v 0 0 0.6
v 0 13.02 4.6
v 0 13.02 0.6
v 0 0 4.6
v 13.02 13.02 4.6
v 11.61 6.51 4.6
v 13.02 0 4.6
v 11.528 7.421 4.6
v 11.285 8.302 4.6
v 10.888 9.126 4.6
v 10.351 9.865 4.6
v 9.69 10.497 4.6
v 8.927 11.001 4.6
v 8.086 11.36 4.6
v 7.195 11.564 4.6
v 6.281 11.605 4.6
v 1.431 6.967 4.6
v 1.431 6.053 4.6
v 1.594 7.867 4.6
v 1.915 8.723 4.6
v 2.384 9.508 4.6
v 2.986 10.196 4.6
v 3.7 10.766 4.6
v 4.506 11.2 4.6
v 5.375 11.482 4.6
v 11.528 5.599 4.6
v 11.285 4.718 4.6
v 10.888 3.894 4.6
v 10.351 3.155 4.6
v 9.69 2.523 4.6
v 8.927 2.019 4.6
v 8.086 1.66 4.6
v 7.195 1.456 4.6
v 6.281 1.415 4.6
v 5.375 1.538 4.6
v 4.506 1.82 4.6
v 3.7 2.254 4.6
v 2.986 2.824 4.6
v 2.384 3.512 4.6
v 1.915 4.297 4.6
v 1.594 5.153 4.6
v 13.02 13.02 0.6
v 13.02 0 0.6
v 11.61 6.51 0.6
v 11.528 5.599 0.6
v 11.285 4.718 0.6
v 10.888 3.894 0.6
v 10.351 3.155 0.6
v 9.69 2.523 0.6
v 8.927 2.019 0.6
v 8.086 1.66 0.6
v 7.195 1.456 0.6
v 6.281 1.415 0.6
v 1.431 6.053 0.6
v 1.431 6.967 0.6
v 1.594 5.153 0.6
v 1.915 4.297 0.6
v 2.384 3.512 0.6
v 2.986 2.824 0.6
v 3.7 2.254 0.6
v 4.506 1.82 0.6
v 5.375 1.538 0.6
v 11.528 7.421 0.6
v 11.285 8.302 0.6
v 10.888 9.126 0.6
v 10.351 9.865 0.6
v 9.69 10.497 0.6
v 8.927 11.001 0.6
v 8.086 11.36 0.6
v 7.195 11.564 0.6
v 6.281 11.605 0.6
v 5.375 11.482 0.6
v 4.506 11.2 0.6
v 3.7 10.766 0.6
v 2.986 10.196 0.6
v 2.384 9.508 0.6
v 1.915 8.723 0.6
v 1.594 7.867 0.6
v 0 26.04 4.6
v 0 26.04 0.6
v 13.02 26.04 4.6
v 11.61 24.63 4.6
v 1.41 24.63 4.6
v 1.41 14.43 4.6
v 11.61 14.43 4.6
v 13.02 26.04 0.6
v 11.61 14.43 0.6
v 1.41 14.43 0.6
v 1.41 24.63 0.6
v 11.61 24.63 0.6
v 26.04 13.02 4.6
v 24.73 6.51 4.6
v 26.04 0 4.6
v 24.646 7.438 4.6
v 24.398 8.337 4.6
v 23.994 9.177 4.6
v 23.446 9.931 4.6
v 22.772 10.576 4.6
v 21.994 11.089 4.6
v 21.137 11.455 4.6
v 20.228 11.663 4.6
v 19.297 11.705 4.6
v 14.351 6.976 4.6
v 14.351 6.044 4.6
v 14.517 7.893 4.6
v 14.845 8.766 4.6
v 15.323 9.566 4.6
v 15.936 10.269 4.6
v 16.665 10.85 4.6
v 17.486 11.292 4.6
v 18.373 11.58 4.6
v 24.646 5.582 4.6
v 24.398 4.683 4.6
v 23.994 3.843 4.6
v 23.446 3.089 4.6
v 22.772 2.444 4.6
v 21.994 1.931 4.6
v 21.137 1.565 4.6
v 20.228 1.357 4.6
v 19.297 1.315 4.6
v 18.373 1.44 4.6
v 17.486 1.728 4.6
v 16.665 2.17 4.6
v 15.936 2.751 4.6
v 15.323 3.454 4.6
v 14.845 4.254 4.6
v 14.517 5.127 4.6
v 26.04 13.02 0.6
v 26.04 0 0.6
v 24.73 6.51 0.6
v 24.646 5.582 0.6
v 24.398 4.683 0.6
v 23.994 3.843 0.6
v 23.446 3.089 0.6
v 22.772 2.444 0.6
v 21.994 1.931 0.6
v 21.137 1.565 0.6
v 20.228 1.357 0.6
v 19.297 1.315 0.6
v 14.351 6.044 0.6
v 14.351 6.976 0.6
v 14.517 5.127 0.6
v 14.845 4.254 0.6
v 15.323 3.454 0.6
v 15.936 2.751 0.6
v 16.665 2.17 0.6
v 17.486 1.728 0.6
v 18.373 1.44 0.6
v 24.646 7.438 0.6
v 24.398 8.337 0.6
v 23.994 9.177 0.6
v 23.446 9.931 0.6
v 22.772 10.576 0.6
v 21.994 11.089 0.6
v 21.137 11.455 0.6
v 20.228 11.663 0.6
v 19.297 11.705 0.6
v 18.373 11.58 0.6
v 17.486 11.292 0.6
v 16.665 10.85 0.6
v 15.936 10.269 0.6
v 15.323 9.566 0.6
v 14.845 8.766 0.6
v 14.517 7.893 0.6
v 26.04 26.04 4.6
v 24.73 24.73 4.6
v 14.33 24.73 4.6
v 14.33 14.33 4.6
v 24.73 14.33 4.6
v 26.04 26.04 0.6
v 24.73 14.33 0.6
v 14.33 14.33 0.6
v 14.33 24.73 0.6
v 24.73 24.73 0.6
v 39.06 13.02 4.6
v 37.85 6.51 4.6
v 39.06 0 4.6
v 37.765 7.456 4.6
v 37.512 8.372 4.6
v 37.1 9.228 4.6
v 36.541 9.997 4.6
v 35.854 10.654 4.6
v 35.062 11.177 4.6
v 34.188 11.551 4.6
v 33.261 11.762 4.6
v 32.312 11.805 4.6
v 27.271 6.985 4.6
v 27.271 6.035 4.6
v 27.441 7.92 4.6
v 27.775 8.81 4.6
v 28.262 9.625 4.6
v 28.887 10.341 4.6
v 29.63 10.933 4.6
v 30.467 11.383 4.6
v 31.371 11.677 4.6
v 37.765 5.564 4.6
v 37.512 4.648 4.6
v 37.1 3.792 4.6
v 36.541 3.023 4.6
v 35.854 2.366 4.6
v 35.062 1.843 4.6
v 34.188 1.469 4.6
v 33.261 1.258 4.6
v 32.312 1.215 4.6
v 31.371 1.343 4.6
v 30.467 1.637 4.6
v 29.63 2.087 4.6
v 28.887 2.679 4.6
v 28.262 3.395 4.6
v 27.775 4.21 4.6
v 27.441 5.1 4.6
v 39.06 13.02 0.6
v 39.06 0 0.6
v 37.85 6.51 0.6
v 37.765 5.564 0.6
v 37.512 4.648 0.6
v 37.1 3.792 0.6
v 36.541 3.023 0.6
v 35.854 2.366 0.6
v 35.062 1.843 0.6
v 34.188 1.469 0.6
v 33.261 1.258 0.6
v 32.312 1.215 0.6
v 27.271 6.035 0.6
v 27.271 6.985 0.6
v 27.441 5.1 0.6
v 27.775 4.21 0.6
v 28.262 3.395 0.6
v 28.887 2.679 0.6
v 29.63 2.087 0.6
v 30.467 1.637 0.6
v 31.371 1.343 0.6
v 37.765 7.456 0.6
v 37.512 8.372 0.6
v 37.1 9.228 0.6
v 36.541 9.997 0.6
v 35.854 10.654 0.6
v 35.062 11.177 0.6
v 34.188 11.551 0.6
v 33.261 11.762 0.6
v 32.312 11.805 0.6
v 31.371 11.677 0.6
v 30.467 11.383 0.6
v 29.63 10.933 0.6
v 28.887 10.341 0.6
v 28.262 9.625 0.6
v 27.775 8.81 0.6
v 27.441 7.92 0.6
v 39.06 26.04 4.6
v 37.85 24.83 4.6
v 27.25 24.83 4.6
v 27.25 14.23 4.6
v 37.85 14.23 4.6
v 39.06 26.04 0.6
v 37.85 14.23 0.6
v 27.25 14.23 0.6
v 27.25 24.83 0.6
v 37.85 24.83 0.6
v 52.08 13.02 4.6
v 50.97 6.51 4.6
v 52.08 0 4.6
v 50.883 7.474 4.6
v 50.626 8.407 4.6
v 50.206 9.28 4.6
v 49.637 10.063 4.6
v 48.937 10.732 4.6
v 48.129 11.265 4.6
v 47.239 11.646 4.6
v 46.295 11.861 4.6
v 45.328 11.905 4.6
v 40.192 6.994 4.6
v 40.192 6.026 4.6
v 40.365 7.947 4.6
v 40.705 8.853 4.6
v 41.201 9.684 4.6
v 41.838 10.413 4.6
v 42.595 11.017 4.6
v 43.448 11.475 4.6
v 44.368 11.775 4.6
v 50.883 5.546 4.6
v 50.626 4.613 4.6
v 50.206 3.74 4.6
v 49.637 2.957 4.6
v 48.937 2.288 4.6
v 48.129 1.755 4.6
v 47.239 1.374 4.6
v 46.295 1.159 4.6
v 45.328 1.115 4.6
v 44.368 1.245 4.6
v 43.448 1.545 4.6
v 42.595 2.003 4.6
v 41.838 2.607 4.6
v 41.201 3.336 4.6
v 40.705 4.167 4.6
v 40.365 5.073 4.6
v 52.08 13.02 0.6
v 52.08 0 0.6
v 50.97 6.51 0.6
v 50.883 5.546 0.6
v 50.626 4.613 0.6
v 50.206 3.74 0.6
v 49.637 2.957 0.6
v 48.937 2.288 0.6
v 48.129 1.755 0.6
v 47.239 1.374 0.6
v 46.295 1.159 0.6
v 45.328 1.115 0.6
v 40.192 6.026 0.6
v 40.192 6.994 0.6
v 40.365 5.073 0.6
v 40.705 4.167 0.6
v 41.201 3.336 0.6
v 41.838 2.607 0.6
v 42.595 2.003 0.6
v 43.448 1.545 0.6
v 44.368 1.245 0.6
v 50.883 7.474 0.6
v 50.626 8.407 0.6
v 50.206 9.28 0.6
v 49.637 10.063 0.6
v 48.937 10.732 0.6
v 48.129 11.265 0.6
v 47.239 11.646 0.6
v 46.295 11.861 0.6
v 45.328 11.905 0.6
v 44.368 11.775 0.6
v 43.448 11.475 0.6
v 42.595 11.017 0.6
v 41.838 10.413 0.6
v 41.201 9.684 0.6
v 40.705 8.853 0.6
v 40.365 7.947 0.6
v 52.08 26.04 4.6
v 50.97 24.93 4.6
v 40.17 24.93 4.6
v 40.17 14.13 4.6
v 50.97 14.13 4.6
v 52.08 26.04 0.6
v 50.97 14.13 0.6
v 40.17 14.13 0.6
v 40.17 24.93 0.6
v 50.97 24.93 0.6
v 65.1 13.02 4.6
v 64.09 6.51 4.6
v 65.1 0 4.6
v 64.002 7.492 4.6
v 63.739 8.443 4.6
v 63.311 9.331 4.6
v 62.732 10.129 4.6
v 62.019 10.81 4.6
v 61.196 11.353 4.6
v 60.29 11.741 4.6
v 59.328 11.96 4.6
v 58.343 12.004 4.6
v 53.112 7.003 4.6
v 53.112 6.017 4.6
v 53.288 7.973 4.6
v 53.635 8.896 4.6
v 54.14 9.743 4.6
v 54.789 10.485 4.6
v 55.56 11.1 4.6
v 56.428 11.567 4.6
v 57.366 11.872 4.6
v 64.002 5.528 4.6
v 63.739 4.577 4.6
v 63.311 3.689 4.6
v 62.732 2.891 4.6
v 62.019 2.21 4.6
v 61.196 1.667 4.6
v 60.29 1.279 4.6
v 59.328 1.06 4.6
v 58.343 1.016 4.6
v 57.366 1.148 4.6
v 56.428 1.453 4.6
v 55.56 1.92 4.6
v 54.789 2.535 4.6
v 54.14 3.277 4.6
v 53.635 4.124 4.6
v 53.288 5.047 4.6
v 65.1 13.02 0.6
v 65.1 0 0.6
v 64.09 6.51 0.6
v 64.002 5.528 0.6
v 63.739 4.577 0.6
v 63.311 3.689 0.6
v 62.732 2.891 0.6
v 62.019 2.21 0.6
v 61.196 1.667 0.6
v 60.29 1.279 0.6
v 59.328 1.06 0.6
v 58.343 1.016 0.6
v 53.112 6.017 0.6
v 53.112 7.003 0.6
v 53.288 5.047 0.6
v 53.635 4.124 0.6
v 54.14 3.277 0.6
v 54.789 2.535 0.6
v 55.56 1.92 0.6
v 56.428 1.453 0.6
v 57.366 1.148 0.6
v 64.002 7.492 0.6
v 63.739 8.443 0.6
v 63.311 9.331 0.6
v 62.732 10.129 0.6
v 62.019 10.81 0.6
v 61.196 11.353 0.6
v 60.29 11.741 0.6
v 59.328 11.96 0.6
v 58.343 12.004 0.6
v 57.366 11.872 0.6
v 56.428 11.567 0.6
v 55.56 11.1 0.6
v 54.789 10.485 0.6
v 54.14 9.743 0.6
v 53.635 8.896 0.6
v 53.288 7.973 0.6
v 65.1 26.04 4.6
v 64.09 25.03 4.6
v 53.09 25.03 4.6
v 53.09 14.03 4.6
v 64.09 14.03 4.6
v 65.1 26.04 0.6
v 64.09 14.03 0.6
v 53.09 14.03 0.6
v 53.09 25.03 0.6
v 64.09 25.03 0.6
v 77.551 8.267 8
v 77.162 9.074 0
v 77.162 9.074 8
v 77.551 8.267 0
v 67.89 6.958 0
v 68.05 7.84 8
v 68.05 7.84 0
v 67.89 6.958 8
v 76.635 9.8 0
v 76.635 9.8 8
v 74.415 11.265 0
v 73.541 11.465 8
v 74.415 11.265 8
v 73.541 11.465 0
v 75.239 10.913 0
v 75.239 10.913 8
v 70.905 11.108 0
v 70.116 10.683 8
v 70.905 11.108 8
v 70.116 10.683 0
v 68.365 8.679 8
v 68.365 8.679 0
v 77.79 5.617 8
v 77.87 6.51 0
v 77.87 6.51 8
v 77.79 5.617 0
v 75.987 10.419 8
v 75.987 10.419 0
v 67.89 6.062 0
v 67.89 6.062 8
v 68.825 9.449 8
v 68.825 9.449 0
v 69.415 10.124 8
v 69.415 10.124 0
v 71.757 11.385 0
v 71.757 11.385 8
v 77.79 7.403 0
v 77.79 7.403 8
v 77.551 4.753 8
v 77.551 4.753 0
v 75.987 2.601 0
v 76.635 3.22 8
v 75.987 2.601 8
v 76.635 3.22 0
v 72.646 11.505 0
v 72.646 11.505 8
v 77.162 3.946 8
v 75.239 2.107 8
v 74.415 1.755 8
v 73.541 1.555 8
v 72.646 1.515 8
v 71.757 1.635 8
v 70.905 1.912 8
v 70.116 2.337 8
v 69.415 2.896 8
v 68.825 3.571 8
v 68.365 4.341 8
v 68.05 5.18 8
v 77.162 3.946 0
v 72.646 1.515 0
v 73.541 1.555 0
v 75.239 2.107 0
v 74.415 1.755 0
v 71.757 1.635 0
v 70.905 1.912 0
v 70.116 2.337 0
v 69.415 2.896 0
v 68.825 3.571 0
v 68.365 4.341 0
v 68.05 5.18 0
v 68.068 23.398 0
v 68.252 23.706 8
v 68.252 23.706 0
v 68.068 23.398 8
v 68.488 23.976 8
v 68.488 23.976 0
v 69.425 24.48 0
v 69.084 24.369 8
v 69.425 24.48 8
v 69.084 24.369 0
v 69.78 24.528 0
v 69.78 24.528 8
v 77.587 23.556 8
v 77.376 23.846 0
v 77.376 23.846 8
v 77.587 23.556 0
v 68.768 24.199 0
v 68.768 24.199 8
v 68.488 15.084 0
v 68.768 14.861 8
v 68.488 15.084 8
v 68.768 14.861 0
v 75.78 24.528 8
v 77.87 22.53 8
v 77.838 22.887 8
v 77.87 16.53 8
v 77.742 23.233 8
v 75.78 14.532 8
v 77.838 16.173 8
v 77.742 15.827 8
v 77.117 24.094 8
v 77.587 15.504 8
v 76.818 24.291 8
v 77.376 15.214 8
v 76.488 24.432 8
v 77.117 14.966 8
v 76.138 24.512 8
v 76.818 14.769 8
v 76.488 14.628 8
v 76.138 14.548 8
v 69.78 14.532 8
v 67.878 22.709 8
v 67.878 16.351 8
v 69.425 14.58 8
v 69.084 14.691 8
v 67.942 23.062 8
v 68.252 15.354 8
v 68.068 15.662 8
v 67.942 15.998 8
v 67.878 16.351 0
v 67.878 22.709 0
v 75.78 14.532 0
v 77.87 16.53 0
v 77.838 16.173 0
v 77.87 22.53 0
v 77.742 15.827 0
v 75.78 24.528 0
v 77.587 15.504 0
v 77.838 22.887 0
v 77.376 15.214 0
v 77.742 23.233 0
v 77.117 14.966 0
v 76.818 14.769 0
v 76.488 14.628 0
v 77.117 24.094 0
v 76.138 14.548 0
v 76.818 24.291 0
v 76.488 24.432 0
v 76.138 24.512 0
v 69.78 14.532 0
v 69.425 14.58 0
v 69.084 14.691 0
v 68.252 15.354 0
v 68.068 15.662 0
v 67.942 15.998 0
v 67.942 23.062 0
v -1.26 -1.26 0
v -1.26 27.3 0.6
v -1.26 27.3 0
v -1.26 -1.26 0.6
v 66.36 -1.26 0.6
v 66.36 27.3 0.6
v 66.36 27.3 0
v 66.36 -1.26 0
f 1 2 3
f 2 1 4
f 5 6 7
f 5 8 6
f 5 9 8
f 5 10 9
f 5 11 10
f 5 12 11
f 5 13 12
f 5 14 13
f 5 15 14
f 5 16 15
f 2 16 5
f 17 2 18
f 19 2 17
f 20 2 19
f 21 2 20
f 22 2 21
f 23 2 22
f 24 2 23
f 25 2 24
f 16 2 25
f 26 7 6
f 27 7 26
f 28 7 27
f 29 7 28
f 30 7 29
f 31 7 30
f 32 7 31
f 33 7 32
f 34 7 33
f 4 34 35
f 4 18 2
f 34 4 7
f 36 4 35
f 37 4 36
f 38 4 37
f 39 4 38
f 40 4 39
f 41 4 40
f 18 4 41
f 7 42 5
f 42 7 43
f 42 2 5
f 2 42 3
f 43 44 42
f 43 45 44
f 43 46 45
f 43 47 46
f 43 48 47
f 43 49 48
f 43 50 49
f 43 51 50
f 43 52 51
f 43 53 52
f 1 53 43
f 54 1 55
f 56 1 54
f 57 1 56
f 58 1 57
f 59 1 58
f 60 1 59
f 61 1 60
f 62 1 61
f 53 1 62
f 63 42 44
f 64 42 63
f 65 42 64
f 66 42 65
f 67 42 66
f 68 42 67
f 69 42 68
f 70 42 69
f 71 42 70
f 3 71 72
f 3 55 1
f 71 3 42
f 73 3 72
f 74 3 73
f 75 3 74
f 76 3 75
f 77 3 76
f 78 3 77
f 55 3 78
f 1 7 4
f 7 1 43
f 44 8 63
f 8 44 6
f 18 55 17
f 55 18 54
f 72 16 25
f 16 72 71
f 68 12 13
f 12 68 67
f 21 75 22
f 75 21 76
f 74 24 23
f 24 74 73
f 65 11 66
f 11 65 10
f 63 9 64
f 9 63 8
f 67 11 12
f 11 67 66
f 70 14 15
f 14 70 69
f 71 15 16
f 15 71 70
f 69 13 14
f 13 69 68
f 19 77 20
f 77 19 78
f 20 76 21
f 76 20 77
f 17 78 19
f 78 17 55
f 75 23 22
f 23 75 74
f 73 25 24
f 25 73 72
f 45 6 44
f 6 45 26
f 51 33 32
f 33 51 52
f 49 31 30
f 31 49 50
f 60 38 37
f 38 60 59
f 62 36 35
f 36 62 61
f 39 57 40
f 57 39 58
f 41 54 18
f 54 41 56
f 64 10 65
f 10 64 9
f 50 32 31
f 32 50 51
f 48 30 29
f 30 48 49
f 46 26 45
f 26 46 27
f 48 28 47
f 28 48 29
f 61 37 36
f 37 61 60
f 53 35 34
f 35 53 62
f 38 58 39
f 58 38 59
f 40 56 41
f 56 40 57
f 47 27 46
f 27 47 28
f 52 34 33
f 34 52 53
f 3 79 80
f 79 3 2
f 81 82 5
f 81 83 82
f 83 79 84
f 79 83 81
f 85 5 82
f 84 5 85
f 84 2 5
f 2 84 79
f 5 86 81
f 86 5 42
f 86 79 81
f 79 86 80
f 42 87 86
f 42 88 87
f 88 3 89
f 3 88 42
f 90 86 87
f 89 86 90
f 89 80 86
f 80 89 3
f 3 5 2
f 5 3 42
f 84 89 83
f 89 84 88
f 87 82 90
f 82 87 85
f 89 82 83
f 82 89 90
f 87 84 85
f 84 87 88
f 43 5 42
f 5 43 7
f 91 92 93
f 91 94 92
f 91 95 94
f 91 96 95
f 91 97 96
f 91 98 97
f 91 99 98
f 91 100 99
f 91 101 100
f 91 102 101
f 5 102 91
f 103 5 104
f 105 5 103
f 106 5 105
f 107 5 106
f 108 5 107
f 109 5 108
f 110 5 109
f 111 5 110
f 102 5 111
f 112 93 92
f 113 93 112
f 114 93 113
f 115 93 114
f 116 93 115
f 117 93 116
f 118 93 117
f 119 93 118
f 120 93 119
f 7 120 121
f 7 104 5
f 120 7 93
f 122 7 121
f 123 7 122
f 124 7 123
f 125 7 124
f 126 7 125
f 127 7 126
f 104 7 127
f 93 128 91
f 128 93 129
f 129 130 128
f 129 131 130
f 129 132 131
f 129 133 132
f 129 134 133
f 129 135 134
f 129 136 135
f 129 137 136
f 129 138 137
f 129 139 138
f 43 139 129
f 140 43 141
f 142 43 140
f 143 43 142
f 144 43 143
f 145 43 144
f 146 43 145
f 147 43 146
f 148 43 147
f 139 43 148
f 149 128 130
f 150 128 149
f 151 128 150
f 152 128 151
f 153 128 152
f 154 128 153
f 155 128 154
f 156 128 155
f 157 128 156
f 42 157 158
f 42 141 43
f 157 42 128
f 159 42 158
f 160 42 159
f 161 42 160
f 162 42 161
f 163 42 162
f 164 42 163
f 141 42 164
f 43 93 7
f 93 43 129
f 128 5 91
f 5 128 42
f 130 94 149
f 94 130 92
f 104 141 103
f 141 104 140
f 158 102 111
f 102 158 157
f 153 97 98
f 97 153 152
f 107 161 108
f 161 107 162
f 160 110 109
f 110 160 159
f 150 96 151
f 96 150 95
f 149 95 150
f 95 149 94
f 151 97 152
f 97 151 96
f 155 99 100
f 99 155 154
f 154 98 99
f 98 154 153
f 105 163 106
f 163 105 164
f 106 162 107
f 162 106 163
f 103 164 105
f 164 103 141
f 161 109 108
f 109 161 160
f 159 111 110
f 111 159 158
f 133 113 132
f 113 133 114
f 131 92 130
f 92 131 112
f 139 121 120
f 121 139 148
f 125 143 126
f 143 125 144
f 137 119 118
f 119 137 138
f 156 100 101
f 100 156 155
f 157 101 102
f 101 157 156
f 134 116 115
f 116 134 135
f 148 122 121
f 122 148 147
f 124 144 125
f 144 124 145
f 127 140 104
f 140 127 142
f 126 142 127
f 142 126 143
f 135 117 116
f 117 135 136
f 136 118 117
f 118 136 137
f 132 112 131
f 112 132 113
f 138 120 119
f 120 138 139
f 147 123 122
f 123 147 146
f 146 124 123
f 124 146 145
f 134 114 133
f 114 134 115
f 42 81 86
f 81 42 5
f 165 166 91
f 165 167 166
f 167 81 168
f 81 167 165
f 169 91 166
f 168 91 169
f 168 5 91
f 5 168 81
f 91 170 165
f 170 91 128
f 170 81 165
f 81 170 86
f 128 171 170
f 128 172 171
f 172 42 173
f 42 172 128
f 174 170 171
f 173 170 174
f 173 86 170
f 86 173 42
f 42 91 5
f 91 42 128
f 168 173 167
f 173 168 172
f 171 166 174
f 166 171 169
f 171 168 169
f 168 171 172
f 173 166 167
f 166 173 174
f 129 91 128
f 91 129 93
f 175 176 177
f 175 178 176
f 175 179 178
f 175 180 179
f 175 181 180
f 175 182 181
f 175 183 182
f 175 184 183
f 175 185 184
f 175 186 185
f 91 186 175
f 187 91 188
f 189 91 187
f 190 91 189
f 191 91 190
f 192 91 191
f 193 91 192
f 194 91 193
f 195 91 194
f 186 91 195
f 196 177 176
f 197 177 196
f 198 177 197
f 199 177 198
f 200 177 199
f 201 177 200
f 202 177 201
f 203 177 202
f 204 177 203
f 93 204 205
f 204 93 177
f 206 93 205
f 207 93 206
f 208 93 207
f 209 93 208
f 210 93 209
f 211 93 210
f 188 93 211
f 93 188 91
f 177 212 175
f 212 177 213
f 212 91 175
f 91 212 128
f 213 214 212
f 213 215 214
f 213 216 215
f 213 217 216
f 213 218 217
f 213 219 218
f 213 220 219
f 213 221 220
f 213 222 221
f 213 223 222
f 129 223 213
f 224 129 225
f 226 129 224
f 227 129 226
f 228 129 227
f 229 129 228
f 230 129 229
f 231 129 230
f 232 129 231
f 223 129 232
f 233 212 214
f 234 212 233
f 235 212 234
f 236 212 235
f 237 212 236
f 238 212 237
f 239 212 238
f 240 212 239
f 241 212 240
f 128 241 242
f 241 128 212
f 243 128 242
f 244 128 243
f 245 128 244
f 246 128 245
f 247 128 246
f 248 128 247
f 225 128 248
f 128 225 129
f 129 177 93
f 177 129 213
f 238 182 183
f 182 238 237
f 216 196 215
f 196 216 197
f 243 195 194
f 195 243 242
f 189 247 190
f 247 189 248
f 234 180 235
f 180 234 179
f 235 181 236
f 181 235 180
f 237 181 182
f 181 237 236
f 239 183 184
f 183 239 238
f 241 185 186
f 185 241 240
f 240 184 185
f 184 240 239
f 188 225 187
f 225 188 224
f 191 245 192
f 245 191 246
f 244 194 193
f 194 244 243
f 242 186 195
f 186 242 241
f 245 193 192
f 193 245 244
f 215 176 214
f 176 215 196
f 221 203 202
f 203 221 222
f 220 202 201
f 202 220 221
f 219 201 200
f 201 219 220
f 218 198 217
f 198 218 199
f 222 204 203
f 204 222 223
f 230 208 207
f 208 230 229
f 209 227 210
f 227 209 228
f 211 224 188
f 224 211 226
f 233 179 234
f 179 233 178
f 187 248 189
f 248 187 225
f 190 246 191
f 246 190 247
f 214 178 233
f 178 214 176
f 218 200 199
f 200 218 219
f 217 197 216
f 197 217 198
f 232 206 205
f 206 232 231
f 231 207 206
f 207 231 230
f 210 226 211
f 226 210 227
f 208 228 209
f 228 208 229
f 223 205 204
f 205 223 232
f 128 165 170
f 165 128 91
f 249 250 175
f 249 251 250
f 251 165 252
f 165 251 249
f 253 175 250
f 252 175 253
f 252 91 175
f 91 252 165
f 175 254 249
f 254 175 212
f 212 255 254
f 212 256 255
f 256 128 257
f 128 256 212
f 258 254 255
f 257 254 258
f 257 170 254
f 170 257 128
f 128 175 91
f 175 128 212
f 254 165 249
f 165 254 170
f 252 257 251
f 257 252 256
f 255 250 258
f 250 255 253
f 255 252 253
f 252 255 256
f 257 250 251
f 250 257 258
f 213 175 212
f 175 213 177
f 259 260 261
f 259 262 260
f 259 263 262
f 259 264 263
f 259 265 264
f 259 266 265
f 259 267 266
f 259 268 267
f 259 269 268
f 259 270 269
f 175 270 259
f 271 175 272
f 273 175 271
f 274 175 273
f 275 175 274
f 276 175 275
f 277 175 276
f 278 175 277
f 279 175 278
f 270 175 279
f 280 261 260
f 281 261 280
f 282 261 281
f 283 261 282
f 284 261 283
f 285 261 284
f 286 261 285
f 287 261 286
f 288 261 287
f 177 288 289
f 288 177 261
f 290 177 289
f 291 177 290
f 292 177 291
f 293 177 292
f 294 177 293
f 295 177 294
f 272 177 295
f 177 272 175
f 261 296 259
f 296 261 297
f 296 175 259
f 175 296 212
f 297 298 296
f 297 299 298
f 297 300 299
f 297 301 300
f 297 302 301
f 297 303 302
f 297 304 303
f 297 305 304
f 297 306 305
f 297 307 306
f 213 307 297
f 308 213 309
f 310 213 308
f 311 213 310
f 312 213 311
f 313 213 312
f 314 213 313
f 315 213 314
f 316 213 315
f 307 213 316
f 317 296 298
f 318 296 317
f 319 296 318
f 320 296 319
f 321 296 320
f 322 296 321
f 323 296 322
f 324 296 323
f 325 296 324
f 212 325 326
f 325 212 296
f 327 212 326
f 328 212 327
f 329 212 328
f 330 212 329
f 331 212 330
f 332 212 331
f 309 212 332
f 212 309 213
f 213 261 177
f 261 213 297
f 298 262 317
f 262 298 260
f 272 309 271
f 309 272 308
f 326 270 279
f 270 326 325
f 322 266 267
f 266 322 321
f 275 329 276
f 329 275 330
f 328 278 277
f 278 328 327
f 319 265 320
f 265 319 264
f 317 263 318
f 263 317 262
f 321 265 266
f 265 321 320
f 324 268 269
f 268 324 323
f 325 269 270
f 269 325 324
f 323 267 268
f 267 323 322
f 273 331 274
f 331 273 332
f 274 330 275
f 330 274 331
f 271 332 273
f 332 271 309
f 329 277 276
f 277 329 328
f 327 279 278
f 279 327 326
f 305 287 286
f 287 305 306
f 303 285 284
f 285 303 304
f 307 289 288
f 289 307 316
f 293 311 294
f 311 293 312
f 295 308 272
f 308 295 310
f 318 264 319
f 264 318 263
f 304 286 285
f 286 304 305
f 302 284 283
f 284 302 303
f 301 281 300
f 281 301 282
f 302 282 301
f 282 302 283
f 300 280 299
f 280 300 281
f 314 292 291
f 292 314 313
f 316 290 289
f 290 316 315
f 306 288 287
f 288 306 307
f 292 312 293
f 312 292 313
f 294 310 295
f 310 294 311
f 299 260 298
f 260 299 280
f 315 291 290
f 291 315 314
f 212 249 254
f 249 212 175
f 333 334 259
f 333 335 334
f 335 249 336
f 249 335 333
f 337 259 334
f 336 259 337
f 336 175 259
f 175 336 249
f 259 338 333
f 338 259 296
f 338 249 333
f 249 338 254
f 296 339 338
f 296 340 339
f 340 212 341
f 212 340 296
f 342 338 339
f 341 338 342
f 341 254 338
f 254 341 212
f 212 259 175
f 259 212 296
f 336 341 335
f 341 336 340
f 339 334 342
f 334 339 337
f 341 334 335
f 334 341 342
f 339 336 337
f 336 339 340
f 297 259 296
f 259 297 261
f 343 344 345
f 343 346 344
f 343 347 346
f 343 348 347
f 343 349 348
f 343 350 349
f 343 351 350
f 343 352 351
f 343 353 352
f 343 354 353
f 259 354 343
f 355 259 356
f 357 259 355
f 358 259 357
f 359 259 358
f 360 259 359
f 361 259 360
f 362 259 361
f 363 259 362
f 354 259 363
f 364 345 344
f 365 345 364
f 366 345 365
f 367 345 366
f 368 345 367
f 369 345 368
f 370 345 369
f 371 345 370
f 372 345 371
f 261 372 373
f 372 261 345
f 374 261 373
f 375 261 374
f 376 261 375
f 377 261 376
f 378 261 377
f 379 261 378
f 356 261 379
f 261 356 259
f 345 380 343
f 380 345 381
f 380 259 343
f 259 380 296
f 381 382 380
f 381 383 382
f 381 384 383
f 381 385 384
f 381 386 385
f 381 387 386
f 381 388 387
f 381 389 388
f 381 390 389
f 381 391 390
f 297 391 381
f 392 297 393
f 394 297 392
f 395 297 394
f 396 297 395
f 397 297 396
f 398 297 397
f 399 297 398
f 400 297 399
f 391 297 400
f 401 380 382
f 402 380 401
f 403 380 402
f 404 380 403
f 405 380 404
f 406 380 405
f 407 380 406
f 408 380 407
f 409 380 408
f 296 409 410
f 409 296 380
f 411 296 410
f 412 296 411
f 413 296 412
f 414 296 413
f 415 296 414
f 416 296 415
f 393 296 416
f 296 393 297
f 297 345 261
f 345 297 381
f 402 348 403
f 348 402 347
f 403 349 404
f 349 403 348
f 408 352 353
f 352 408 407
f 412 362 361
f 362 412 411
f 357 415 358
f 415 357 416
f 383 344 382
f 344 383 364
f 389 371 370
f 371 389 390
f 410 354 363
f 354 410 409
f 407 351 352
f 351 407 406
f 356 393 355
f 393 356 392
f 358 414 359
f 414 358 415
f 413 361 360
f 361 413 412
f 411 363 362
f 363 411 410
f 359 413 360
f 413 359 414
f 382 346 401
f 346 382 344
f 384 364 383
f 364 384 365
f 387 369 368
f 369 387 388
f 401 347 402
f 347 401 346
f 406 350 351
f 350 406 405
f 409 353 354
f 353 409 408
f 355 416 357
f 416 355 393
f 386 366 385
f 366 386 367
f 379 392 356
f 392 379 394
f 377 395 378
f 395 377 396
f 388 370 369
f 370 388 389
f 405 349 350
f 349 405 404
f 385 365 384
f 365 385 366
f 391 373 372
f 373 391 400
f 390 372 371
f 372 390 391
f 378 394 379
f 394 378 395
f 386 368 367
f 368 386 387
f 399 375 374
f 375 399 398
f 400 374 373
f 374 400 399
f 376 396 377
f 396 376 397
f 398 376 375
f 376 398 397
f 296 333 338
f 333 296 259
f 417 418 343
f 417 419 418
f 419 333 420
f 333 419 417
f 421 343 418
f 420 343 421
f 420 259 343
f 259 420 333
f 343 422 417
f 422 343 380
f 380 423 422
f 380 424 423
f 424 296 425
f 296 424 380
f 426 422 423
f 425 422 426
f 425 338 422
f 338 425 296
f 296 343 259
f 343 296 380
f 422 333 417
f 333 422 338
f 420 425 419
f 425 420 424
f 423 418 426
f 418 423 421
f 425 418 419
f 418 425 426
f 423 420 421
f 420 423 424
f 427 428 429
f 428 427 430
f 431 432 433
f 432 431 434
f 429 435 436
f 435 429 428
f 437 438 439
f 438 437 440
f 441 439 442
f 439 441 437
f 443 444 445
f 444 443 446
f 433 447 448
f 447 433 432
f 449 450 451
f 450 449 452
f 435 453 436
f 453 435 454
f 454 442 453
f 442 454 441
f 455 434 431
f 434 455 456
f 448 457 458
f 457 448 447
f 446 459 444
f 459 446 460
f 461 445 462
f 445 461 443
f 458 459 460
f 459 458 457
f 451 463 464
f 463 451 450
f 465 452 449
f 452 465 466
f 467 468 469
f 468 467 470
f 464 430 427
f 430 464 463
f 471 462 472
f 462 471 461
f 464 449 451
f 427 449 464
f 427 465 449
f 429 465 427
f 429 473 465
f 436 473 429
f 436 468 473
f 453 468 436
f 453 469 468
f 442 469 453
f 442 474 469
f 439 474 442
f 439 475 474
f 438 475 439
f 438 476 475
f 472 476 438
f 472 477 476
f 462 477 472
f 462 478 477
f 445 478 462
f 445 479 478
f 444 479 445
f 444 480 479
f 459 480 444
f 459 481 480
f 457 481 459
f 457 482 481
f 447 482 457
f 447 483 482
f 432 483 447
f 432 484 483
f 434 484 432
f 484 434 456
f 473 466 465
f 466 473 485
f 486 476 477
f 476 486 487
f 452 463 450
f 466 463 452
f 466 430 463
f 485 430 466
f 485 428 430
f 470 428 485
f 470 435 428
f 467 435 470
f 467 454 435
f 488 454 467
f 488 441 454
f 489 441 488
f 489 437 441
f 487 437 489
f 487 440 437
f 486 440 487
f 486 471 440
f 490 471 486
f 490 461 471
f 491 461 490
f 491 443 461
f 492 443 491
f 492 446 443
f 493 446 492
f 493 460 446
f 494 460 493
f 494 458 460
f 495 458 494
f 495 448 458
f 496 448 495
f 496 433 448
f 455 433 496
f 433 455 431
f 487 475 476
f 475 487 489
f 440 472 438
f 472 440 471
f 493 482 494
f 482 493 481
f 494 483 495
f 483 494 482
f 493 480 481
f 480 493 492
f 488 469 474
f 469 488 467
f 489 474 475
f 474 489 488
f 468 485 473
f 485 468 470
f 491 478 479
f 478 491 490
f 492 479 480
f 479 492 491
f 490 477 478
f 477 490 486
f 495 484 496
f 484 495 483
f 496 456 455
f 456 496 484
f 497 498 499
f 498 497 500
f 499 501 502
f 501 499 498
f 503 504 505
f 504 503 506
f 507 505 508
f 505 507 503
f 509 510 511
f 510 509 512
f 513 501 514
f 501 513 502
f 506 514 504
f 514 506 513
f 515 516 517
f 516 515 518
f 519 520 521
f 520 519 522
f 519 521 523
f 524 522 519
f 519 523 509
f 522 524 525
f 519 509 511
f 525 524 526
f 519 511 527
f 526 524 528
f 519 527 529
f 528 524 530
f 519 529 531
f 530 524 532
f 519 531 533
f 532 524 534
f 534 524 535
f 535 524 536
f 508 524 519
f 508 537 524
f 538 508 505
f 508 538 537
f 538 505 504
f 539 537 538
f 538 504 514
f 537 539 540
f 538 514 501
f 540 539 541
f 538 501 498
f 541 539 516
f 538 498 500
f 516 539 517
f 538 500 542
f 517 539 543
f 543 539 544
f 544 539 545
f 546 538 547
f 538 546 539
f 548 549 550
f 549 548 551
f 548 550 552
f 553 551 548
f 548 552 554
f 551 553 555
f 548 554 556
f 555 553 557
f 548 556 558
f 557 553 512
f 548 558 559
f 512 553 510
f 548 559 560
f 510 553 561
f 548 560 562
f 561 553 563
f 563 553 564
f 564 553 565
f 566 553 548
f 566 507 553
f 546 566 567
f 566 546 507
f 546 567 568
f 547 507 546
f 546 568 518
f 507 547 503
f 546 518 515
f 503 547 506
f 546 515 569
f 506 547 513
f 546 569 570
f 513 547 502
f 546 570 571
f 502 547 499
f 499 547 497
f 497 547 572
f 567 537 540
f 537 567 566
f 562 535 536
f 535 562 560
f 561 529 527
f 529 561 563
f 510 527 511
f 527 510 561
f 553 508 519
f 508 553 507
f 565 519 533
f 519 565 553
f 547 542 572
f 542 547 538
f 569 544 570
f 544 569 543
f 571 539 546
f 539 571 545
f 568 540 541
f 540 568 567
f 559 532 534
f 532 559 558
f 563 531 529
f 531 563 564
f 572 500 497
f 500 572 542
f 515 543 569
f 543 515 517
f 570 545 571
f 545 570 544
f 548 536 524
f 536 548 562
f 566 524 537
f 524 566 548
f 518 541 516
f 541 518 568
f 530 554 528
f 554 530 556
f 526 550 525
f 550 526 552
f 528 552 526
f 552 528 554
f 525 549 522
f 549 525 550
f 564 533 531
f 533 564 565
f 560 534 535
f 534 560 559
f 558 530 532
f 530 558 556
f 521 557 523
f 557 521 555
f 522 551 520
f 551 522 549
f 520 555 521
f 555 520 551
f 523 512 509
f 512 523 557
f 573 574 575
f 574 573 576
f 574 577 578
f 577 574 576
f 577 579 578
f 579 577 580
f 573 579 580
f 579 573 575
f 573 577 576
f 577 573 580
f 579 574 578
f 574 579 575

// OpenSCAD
include <../3d-printer-testing-suite.scad>

/* [Hidden] */
color_scheme = ["lightblue"];
test_type = "tolerance";
